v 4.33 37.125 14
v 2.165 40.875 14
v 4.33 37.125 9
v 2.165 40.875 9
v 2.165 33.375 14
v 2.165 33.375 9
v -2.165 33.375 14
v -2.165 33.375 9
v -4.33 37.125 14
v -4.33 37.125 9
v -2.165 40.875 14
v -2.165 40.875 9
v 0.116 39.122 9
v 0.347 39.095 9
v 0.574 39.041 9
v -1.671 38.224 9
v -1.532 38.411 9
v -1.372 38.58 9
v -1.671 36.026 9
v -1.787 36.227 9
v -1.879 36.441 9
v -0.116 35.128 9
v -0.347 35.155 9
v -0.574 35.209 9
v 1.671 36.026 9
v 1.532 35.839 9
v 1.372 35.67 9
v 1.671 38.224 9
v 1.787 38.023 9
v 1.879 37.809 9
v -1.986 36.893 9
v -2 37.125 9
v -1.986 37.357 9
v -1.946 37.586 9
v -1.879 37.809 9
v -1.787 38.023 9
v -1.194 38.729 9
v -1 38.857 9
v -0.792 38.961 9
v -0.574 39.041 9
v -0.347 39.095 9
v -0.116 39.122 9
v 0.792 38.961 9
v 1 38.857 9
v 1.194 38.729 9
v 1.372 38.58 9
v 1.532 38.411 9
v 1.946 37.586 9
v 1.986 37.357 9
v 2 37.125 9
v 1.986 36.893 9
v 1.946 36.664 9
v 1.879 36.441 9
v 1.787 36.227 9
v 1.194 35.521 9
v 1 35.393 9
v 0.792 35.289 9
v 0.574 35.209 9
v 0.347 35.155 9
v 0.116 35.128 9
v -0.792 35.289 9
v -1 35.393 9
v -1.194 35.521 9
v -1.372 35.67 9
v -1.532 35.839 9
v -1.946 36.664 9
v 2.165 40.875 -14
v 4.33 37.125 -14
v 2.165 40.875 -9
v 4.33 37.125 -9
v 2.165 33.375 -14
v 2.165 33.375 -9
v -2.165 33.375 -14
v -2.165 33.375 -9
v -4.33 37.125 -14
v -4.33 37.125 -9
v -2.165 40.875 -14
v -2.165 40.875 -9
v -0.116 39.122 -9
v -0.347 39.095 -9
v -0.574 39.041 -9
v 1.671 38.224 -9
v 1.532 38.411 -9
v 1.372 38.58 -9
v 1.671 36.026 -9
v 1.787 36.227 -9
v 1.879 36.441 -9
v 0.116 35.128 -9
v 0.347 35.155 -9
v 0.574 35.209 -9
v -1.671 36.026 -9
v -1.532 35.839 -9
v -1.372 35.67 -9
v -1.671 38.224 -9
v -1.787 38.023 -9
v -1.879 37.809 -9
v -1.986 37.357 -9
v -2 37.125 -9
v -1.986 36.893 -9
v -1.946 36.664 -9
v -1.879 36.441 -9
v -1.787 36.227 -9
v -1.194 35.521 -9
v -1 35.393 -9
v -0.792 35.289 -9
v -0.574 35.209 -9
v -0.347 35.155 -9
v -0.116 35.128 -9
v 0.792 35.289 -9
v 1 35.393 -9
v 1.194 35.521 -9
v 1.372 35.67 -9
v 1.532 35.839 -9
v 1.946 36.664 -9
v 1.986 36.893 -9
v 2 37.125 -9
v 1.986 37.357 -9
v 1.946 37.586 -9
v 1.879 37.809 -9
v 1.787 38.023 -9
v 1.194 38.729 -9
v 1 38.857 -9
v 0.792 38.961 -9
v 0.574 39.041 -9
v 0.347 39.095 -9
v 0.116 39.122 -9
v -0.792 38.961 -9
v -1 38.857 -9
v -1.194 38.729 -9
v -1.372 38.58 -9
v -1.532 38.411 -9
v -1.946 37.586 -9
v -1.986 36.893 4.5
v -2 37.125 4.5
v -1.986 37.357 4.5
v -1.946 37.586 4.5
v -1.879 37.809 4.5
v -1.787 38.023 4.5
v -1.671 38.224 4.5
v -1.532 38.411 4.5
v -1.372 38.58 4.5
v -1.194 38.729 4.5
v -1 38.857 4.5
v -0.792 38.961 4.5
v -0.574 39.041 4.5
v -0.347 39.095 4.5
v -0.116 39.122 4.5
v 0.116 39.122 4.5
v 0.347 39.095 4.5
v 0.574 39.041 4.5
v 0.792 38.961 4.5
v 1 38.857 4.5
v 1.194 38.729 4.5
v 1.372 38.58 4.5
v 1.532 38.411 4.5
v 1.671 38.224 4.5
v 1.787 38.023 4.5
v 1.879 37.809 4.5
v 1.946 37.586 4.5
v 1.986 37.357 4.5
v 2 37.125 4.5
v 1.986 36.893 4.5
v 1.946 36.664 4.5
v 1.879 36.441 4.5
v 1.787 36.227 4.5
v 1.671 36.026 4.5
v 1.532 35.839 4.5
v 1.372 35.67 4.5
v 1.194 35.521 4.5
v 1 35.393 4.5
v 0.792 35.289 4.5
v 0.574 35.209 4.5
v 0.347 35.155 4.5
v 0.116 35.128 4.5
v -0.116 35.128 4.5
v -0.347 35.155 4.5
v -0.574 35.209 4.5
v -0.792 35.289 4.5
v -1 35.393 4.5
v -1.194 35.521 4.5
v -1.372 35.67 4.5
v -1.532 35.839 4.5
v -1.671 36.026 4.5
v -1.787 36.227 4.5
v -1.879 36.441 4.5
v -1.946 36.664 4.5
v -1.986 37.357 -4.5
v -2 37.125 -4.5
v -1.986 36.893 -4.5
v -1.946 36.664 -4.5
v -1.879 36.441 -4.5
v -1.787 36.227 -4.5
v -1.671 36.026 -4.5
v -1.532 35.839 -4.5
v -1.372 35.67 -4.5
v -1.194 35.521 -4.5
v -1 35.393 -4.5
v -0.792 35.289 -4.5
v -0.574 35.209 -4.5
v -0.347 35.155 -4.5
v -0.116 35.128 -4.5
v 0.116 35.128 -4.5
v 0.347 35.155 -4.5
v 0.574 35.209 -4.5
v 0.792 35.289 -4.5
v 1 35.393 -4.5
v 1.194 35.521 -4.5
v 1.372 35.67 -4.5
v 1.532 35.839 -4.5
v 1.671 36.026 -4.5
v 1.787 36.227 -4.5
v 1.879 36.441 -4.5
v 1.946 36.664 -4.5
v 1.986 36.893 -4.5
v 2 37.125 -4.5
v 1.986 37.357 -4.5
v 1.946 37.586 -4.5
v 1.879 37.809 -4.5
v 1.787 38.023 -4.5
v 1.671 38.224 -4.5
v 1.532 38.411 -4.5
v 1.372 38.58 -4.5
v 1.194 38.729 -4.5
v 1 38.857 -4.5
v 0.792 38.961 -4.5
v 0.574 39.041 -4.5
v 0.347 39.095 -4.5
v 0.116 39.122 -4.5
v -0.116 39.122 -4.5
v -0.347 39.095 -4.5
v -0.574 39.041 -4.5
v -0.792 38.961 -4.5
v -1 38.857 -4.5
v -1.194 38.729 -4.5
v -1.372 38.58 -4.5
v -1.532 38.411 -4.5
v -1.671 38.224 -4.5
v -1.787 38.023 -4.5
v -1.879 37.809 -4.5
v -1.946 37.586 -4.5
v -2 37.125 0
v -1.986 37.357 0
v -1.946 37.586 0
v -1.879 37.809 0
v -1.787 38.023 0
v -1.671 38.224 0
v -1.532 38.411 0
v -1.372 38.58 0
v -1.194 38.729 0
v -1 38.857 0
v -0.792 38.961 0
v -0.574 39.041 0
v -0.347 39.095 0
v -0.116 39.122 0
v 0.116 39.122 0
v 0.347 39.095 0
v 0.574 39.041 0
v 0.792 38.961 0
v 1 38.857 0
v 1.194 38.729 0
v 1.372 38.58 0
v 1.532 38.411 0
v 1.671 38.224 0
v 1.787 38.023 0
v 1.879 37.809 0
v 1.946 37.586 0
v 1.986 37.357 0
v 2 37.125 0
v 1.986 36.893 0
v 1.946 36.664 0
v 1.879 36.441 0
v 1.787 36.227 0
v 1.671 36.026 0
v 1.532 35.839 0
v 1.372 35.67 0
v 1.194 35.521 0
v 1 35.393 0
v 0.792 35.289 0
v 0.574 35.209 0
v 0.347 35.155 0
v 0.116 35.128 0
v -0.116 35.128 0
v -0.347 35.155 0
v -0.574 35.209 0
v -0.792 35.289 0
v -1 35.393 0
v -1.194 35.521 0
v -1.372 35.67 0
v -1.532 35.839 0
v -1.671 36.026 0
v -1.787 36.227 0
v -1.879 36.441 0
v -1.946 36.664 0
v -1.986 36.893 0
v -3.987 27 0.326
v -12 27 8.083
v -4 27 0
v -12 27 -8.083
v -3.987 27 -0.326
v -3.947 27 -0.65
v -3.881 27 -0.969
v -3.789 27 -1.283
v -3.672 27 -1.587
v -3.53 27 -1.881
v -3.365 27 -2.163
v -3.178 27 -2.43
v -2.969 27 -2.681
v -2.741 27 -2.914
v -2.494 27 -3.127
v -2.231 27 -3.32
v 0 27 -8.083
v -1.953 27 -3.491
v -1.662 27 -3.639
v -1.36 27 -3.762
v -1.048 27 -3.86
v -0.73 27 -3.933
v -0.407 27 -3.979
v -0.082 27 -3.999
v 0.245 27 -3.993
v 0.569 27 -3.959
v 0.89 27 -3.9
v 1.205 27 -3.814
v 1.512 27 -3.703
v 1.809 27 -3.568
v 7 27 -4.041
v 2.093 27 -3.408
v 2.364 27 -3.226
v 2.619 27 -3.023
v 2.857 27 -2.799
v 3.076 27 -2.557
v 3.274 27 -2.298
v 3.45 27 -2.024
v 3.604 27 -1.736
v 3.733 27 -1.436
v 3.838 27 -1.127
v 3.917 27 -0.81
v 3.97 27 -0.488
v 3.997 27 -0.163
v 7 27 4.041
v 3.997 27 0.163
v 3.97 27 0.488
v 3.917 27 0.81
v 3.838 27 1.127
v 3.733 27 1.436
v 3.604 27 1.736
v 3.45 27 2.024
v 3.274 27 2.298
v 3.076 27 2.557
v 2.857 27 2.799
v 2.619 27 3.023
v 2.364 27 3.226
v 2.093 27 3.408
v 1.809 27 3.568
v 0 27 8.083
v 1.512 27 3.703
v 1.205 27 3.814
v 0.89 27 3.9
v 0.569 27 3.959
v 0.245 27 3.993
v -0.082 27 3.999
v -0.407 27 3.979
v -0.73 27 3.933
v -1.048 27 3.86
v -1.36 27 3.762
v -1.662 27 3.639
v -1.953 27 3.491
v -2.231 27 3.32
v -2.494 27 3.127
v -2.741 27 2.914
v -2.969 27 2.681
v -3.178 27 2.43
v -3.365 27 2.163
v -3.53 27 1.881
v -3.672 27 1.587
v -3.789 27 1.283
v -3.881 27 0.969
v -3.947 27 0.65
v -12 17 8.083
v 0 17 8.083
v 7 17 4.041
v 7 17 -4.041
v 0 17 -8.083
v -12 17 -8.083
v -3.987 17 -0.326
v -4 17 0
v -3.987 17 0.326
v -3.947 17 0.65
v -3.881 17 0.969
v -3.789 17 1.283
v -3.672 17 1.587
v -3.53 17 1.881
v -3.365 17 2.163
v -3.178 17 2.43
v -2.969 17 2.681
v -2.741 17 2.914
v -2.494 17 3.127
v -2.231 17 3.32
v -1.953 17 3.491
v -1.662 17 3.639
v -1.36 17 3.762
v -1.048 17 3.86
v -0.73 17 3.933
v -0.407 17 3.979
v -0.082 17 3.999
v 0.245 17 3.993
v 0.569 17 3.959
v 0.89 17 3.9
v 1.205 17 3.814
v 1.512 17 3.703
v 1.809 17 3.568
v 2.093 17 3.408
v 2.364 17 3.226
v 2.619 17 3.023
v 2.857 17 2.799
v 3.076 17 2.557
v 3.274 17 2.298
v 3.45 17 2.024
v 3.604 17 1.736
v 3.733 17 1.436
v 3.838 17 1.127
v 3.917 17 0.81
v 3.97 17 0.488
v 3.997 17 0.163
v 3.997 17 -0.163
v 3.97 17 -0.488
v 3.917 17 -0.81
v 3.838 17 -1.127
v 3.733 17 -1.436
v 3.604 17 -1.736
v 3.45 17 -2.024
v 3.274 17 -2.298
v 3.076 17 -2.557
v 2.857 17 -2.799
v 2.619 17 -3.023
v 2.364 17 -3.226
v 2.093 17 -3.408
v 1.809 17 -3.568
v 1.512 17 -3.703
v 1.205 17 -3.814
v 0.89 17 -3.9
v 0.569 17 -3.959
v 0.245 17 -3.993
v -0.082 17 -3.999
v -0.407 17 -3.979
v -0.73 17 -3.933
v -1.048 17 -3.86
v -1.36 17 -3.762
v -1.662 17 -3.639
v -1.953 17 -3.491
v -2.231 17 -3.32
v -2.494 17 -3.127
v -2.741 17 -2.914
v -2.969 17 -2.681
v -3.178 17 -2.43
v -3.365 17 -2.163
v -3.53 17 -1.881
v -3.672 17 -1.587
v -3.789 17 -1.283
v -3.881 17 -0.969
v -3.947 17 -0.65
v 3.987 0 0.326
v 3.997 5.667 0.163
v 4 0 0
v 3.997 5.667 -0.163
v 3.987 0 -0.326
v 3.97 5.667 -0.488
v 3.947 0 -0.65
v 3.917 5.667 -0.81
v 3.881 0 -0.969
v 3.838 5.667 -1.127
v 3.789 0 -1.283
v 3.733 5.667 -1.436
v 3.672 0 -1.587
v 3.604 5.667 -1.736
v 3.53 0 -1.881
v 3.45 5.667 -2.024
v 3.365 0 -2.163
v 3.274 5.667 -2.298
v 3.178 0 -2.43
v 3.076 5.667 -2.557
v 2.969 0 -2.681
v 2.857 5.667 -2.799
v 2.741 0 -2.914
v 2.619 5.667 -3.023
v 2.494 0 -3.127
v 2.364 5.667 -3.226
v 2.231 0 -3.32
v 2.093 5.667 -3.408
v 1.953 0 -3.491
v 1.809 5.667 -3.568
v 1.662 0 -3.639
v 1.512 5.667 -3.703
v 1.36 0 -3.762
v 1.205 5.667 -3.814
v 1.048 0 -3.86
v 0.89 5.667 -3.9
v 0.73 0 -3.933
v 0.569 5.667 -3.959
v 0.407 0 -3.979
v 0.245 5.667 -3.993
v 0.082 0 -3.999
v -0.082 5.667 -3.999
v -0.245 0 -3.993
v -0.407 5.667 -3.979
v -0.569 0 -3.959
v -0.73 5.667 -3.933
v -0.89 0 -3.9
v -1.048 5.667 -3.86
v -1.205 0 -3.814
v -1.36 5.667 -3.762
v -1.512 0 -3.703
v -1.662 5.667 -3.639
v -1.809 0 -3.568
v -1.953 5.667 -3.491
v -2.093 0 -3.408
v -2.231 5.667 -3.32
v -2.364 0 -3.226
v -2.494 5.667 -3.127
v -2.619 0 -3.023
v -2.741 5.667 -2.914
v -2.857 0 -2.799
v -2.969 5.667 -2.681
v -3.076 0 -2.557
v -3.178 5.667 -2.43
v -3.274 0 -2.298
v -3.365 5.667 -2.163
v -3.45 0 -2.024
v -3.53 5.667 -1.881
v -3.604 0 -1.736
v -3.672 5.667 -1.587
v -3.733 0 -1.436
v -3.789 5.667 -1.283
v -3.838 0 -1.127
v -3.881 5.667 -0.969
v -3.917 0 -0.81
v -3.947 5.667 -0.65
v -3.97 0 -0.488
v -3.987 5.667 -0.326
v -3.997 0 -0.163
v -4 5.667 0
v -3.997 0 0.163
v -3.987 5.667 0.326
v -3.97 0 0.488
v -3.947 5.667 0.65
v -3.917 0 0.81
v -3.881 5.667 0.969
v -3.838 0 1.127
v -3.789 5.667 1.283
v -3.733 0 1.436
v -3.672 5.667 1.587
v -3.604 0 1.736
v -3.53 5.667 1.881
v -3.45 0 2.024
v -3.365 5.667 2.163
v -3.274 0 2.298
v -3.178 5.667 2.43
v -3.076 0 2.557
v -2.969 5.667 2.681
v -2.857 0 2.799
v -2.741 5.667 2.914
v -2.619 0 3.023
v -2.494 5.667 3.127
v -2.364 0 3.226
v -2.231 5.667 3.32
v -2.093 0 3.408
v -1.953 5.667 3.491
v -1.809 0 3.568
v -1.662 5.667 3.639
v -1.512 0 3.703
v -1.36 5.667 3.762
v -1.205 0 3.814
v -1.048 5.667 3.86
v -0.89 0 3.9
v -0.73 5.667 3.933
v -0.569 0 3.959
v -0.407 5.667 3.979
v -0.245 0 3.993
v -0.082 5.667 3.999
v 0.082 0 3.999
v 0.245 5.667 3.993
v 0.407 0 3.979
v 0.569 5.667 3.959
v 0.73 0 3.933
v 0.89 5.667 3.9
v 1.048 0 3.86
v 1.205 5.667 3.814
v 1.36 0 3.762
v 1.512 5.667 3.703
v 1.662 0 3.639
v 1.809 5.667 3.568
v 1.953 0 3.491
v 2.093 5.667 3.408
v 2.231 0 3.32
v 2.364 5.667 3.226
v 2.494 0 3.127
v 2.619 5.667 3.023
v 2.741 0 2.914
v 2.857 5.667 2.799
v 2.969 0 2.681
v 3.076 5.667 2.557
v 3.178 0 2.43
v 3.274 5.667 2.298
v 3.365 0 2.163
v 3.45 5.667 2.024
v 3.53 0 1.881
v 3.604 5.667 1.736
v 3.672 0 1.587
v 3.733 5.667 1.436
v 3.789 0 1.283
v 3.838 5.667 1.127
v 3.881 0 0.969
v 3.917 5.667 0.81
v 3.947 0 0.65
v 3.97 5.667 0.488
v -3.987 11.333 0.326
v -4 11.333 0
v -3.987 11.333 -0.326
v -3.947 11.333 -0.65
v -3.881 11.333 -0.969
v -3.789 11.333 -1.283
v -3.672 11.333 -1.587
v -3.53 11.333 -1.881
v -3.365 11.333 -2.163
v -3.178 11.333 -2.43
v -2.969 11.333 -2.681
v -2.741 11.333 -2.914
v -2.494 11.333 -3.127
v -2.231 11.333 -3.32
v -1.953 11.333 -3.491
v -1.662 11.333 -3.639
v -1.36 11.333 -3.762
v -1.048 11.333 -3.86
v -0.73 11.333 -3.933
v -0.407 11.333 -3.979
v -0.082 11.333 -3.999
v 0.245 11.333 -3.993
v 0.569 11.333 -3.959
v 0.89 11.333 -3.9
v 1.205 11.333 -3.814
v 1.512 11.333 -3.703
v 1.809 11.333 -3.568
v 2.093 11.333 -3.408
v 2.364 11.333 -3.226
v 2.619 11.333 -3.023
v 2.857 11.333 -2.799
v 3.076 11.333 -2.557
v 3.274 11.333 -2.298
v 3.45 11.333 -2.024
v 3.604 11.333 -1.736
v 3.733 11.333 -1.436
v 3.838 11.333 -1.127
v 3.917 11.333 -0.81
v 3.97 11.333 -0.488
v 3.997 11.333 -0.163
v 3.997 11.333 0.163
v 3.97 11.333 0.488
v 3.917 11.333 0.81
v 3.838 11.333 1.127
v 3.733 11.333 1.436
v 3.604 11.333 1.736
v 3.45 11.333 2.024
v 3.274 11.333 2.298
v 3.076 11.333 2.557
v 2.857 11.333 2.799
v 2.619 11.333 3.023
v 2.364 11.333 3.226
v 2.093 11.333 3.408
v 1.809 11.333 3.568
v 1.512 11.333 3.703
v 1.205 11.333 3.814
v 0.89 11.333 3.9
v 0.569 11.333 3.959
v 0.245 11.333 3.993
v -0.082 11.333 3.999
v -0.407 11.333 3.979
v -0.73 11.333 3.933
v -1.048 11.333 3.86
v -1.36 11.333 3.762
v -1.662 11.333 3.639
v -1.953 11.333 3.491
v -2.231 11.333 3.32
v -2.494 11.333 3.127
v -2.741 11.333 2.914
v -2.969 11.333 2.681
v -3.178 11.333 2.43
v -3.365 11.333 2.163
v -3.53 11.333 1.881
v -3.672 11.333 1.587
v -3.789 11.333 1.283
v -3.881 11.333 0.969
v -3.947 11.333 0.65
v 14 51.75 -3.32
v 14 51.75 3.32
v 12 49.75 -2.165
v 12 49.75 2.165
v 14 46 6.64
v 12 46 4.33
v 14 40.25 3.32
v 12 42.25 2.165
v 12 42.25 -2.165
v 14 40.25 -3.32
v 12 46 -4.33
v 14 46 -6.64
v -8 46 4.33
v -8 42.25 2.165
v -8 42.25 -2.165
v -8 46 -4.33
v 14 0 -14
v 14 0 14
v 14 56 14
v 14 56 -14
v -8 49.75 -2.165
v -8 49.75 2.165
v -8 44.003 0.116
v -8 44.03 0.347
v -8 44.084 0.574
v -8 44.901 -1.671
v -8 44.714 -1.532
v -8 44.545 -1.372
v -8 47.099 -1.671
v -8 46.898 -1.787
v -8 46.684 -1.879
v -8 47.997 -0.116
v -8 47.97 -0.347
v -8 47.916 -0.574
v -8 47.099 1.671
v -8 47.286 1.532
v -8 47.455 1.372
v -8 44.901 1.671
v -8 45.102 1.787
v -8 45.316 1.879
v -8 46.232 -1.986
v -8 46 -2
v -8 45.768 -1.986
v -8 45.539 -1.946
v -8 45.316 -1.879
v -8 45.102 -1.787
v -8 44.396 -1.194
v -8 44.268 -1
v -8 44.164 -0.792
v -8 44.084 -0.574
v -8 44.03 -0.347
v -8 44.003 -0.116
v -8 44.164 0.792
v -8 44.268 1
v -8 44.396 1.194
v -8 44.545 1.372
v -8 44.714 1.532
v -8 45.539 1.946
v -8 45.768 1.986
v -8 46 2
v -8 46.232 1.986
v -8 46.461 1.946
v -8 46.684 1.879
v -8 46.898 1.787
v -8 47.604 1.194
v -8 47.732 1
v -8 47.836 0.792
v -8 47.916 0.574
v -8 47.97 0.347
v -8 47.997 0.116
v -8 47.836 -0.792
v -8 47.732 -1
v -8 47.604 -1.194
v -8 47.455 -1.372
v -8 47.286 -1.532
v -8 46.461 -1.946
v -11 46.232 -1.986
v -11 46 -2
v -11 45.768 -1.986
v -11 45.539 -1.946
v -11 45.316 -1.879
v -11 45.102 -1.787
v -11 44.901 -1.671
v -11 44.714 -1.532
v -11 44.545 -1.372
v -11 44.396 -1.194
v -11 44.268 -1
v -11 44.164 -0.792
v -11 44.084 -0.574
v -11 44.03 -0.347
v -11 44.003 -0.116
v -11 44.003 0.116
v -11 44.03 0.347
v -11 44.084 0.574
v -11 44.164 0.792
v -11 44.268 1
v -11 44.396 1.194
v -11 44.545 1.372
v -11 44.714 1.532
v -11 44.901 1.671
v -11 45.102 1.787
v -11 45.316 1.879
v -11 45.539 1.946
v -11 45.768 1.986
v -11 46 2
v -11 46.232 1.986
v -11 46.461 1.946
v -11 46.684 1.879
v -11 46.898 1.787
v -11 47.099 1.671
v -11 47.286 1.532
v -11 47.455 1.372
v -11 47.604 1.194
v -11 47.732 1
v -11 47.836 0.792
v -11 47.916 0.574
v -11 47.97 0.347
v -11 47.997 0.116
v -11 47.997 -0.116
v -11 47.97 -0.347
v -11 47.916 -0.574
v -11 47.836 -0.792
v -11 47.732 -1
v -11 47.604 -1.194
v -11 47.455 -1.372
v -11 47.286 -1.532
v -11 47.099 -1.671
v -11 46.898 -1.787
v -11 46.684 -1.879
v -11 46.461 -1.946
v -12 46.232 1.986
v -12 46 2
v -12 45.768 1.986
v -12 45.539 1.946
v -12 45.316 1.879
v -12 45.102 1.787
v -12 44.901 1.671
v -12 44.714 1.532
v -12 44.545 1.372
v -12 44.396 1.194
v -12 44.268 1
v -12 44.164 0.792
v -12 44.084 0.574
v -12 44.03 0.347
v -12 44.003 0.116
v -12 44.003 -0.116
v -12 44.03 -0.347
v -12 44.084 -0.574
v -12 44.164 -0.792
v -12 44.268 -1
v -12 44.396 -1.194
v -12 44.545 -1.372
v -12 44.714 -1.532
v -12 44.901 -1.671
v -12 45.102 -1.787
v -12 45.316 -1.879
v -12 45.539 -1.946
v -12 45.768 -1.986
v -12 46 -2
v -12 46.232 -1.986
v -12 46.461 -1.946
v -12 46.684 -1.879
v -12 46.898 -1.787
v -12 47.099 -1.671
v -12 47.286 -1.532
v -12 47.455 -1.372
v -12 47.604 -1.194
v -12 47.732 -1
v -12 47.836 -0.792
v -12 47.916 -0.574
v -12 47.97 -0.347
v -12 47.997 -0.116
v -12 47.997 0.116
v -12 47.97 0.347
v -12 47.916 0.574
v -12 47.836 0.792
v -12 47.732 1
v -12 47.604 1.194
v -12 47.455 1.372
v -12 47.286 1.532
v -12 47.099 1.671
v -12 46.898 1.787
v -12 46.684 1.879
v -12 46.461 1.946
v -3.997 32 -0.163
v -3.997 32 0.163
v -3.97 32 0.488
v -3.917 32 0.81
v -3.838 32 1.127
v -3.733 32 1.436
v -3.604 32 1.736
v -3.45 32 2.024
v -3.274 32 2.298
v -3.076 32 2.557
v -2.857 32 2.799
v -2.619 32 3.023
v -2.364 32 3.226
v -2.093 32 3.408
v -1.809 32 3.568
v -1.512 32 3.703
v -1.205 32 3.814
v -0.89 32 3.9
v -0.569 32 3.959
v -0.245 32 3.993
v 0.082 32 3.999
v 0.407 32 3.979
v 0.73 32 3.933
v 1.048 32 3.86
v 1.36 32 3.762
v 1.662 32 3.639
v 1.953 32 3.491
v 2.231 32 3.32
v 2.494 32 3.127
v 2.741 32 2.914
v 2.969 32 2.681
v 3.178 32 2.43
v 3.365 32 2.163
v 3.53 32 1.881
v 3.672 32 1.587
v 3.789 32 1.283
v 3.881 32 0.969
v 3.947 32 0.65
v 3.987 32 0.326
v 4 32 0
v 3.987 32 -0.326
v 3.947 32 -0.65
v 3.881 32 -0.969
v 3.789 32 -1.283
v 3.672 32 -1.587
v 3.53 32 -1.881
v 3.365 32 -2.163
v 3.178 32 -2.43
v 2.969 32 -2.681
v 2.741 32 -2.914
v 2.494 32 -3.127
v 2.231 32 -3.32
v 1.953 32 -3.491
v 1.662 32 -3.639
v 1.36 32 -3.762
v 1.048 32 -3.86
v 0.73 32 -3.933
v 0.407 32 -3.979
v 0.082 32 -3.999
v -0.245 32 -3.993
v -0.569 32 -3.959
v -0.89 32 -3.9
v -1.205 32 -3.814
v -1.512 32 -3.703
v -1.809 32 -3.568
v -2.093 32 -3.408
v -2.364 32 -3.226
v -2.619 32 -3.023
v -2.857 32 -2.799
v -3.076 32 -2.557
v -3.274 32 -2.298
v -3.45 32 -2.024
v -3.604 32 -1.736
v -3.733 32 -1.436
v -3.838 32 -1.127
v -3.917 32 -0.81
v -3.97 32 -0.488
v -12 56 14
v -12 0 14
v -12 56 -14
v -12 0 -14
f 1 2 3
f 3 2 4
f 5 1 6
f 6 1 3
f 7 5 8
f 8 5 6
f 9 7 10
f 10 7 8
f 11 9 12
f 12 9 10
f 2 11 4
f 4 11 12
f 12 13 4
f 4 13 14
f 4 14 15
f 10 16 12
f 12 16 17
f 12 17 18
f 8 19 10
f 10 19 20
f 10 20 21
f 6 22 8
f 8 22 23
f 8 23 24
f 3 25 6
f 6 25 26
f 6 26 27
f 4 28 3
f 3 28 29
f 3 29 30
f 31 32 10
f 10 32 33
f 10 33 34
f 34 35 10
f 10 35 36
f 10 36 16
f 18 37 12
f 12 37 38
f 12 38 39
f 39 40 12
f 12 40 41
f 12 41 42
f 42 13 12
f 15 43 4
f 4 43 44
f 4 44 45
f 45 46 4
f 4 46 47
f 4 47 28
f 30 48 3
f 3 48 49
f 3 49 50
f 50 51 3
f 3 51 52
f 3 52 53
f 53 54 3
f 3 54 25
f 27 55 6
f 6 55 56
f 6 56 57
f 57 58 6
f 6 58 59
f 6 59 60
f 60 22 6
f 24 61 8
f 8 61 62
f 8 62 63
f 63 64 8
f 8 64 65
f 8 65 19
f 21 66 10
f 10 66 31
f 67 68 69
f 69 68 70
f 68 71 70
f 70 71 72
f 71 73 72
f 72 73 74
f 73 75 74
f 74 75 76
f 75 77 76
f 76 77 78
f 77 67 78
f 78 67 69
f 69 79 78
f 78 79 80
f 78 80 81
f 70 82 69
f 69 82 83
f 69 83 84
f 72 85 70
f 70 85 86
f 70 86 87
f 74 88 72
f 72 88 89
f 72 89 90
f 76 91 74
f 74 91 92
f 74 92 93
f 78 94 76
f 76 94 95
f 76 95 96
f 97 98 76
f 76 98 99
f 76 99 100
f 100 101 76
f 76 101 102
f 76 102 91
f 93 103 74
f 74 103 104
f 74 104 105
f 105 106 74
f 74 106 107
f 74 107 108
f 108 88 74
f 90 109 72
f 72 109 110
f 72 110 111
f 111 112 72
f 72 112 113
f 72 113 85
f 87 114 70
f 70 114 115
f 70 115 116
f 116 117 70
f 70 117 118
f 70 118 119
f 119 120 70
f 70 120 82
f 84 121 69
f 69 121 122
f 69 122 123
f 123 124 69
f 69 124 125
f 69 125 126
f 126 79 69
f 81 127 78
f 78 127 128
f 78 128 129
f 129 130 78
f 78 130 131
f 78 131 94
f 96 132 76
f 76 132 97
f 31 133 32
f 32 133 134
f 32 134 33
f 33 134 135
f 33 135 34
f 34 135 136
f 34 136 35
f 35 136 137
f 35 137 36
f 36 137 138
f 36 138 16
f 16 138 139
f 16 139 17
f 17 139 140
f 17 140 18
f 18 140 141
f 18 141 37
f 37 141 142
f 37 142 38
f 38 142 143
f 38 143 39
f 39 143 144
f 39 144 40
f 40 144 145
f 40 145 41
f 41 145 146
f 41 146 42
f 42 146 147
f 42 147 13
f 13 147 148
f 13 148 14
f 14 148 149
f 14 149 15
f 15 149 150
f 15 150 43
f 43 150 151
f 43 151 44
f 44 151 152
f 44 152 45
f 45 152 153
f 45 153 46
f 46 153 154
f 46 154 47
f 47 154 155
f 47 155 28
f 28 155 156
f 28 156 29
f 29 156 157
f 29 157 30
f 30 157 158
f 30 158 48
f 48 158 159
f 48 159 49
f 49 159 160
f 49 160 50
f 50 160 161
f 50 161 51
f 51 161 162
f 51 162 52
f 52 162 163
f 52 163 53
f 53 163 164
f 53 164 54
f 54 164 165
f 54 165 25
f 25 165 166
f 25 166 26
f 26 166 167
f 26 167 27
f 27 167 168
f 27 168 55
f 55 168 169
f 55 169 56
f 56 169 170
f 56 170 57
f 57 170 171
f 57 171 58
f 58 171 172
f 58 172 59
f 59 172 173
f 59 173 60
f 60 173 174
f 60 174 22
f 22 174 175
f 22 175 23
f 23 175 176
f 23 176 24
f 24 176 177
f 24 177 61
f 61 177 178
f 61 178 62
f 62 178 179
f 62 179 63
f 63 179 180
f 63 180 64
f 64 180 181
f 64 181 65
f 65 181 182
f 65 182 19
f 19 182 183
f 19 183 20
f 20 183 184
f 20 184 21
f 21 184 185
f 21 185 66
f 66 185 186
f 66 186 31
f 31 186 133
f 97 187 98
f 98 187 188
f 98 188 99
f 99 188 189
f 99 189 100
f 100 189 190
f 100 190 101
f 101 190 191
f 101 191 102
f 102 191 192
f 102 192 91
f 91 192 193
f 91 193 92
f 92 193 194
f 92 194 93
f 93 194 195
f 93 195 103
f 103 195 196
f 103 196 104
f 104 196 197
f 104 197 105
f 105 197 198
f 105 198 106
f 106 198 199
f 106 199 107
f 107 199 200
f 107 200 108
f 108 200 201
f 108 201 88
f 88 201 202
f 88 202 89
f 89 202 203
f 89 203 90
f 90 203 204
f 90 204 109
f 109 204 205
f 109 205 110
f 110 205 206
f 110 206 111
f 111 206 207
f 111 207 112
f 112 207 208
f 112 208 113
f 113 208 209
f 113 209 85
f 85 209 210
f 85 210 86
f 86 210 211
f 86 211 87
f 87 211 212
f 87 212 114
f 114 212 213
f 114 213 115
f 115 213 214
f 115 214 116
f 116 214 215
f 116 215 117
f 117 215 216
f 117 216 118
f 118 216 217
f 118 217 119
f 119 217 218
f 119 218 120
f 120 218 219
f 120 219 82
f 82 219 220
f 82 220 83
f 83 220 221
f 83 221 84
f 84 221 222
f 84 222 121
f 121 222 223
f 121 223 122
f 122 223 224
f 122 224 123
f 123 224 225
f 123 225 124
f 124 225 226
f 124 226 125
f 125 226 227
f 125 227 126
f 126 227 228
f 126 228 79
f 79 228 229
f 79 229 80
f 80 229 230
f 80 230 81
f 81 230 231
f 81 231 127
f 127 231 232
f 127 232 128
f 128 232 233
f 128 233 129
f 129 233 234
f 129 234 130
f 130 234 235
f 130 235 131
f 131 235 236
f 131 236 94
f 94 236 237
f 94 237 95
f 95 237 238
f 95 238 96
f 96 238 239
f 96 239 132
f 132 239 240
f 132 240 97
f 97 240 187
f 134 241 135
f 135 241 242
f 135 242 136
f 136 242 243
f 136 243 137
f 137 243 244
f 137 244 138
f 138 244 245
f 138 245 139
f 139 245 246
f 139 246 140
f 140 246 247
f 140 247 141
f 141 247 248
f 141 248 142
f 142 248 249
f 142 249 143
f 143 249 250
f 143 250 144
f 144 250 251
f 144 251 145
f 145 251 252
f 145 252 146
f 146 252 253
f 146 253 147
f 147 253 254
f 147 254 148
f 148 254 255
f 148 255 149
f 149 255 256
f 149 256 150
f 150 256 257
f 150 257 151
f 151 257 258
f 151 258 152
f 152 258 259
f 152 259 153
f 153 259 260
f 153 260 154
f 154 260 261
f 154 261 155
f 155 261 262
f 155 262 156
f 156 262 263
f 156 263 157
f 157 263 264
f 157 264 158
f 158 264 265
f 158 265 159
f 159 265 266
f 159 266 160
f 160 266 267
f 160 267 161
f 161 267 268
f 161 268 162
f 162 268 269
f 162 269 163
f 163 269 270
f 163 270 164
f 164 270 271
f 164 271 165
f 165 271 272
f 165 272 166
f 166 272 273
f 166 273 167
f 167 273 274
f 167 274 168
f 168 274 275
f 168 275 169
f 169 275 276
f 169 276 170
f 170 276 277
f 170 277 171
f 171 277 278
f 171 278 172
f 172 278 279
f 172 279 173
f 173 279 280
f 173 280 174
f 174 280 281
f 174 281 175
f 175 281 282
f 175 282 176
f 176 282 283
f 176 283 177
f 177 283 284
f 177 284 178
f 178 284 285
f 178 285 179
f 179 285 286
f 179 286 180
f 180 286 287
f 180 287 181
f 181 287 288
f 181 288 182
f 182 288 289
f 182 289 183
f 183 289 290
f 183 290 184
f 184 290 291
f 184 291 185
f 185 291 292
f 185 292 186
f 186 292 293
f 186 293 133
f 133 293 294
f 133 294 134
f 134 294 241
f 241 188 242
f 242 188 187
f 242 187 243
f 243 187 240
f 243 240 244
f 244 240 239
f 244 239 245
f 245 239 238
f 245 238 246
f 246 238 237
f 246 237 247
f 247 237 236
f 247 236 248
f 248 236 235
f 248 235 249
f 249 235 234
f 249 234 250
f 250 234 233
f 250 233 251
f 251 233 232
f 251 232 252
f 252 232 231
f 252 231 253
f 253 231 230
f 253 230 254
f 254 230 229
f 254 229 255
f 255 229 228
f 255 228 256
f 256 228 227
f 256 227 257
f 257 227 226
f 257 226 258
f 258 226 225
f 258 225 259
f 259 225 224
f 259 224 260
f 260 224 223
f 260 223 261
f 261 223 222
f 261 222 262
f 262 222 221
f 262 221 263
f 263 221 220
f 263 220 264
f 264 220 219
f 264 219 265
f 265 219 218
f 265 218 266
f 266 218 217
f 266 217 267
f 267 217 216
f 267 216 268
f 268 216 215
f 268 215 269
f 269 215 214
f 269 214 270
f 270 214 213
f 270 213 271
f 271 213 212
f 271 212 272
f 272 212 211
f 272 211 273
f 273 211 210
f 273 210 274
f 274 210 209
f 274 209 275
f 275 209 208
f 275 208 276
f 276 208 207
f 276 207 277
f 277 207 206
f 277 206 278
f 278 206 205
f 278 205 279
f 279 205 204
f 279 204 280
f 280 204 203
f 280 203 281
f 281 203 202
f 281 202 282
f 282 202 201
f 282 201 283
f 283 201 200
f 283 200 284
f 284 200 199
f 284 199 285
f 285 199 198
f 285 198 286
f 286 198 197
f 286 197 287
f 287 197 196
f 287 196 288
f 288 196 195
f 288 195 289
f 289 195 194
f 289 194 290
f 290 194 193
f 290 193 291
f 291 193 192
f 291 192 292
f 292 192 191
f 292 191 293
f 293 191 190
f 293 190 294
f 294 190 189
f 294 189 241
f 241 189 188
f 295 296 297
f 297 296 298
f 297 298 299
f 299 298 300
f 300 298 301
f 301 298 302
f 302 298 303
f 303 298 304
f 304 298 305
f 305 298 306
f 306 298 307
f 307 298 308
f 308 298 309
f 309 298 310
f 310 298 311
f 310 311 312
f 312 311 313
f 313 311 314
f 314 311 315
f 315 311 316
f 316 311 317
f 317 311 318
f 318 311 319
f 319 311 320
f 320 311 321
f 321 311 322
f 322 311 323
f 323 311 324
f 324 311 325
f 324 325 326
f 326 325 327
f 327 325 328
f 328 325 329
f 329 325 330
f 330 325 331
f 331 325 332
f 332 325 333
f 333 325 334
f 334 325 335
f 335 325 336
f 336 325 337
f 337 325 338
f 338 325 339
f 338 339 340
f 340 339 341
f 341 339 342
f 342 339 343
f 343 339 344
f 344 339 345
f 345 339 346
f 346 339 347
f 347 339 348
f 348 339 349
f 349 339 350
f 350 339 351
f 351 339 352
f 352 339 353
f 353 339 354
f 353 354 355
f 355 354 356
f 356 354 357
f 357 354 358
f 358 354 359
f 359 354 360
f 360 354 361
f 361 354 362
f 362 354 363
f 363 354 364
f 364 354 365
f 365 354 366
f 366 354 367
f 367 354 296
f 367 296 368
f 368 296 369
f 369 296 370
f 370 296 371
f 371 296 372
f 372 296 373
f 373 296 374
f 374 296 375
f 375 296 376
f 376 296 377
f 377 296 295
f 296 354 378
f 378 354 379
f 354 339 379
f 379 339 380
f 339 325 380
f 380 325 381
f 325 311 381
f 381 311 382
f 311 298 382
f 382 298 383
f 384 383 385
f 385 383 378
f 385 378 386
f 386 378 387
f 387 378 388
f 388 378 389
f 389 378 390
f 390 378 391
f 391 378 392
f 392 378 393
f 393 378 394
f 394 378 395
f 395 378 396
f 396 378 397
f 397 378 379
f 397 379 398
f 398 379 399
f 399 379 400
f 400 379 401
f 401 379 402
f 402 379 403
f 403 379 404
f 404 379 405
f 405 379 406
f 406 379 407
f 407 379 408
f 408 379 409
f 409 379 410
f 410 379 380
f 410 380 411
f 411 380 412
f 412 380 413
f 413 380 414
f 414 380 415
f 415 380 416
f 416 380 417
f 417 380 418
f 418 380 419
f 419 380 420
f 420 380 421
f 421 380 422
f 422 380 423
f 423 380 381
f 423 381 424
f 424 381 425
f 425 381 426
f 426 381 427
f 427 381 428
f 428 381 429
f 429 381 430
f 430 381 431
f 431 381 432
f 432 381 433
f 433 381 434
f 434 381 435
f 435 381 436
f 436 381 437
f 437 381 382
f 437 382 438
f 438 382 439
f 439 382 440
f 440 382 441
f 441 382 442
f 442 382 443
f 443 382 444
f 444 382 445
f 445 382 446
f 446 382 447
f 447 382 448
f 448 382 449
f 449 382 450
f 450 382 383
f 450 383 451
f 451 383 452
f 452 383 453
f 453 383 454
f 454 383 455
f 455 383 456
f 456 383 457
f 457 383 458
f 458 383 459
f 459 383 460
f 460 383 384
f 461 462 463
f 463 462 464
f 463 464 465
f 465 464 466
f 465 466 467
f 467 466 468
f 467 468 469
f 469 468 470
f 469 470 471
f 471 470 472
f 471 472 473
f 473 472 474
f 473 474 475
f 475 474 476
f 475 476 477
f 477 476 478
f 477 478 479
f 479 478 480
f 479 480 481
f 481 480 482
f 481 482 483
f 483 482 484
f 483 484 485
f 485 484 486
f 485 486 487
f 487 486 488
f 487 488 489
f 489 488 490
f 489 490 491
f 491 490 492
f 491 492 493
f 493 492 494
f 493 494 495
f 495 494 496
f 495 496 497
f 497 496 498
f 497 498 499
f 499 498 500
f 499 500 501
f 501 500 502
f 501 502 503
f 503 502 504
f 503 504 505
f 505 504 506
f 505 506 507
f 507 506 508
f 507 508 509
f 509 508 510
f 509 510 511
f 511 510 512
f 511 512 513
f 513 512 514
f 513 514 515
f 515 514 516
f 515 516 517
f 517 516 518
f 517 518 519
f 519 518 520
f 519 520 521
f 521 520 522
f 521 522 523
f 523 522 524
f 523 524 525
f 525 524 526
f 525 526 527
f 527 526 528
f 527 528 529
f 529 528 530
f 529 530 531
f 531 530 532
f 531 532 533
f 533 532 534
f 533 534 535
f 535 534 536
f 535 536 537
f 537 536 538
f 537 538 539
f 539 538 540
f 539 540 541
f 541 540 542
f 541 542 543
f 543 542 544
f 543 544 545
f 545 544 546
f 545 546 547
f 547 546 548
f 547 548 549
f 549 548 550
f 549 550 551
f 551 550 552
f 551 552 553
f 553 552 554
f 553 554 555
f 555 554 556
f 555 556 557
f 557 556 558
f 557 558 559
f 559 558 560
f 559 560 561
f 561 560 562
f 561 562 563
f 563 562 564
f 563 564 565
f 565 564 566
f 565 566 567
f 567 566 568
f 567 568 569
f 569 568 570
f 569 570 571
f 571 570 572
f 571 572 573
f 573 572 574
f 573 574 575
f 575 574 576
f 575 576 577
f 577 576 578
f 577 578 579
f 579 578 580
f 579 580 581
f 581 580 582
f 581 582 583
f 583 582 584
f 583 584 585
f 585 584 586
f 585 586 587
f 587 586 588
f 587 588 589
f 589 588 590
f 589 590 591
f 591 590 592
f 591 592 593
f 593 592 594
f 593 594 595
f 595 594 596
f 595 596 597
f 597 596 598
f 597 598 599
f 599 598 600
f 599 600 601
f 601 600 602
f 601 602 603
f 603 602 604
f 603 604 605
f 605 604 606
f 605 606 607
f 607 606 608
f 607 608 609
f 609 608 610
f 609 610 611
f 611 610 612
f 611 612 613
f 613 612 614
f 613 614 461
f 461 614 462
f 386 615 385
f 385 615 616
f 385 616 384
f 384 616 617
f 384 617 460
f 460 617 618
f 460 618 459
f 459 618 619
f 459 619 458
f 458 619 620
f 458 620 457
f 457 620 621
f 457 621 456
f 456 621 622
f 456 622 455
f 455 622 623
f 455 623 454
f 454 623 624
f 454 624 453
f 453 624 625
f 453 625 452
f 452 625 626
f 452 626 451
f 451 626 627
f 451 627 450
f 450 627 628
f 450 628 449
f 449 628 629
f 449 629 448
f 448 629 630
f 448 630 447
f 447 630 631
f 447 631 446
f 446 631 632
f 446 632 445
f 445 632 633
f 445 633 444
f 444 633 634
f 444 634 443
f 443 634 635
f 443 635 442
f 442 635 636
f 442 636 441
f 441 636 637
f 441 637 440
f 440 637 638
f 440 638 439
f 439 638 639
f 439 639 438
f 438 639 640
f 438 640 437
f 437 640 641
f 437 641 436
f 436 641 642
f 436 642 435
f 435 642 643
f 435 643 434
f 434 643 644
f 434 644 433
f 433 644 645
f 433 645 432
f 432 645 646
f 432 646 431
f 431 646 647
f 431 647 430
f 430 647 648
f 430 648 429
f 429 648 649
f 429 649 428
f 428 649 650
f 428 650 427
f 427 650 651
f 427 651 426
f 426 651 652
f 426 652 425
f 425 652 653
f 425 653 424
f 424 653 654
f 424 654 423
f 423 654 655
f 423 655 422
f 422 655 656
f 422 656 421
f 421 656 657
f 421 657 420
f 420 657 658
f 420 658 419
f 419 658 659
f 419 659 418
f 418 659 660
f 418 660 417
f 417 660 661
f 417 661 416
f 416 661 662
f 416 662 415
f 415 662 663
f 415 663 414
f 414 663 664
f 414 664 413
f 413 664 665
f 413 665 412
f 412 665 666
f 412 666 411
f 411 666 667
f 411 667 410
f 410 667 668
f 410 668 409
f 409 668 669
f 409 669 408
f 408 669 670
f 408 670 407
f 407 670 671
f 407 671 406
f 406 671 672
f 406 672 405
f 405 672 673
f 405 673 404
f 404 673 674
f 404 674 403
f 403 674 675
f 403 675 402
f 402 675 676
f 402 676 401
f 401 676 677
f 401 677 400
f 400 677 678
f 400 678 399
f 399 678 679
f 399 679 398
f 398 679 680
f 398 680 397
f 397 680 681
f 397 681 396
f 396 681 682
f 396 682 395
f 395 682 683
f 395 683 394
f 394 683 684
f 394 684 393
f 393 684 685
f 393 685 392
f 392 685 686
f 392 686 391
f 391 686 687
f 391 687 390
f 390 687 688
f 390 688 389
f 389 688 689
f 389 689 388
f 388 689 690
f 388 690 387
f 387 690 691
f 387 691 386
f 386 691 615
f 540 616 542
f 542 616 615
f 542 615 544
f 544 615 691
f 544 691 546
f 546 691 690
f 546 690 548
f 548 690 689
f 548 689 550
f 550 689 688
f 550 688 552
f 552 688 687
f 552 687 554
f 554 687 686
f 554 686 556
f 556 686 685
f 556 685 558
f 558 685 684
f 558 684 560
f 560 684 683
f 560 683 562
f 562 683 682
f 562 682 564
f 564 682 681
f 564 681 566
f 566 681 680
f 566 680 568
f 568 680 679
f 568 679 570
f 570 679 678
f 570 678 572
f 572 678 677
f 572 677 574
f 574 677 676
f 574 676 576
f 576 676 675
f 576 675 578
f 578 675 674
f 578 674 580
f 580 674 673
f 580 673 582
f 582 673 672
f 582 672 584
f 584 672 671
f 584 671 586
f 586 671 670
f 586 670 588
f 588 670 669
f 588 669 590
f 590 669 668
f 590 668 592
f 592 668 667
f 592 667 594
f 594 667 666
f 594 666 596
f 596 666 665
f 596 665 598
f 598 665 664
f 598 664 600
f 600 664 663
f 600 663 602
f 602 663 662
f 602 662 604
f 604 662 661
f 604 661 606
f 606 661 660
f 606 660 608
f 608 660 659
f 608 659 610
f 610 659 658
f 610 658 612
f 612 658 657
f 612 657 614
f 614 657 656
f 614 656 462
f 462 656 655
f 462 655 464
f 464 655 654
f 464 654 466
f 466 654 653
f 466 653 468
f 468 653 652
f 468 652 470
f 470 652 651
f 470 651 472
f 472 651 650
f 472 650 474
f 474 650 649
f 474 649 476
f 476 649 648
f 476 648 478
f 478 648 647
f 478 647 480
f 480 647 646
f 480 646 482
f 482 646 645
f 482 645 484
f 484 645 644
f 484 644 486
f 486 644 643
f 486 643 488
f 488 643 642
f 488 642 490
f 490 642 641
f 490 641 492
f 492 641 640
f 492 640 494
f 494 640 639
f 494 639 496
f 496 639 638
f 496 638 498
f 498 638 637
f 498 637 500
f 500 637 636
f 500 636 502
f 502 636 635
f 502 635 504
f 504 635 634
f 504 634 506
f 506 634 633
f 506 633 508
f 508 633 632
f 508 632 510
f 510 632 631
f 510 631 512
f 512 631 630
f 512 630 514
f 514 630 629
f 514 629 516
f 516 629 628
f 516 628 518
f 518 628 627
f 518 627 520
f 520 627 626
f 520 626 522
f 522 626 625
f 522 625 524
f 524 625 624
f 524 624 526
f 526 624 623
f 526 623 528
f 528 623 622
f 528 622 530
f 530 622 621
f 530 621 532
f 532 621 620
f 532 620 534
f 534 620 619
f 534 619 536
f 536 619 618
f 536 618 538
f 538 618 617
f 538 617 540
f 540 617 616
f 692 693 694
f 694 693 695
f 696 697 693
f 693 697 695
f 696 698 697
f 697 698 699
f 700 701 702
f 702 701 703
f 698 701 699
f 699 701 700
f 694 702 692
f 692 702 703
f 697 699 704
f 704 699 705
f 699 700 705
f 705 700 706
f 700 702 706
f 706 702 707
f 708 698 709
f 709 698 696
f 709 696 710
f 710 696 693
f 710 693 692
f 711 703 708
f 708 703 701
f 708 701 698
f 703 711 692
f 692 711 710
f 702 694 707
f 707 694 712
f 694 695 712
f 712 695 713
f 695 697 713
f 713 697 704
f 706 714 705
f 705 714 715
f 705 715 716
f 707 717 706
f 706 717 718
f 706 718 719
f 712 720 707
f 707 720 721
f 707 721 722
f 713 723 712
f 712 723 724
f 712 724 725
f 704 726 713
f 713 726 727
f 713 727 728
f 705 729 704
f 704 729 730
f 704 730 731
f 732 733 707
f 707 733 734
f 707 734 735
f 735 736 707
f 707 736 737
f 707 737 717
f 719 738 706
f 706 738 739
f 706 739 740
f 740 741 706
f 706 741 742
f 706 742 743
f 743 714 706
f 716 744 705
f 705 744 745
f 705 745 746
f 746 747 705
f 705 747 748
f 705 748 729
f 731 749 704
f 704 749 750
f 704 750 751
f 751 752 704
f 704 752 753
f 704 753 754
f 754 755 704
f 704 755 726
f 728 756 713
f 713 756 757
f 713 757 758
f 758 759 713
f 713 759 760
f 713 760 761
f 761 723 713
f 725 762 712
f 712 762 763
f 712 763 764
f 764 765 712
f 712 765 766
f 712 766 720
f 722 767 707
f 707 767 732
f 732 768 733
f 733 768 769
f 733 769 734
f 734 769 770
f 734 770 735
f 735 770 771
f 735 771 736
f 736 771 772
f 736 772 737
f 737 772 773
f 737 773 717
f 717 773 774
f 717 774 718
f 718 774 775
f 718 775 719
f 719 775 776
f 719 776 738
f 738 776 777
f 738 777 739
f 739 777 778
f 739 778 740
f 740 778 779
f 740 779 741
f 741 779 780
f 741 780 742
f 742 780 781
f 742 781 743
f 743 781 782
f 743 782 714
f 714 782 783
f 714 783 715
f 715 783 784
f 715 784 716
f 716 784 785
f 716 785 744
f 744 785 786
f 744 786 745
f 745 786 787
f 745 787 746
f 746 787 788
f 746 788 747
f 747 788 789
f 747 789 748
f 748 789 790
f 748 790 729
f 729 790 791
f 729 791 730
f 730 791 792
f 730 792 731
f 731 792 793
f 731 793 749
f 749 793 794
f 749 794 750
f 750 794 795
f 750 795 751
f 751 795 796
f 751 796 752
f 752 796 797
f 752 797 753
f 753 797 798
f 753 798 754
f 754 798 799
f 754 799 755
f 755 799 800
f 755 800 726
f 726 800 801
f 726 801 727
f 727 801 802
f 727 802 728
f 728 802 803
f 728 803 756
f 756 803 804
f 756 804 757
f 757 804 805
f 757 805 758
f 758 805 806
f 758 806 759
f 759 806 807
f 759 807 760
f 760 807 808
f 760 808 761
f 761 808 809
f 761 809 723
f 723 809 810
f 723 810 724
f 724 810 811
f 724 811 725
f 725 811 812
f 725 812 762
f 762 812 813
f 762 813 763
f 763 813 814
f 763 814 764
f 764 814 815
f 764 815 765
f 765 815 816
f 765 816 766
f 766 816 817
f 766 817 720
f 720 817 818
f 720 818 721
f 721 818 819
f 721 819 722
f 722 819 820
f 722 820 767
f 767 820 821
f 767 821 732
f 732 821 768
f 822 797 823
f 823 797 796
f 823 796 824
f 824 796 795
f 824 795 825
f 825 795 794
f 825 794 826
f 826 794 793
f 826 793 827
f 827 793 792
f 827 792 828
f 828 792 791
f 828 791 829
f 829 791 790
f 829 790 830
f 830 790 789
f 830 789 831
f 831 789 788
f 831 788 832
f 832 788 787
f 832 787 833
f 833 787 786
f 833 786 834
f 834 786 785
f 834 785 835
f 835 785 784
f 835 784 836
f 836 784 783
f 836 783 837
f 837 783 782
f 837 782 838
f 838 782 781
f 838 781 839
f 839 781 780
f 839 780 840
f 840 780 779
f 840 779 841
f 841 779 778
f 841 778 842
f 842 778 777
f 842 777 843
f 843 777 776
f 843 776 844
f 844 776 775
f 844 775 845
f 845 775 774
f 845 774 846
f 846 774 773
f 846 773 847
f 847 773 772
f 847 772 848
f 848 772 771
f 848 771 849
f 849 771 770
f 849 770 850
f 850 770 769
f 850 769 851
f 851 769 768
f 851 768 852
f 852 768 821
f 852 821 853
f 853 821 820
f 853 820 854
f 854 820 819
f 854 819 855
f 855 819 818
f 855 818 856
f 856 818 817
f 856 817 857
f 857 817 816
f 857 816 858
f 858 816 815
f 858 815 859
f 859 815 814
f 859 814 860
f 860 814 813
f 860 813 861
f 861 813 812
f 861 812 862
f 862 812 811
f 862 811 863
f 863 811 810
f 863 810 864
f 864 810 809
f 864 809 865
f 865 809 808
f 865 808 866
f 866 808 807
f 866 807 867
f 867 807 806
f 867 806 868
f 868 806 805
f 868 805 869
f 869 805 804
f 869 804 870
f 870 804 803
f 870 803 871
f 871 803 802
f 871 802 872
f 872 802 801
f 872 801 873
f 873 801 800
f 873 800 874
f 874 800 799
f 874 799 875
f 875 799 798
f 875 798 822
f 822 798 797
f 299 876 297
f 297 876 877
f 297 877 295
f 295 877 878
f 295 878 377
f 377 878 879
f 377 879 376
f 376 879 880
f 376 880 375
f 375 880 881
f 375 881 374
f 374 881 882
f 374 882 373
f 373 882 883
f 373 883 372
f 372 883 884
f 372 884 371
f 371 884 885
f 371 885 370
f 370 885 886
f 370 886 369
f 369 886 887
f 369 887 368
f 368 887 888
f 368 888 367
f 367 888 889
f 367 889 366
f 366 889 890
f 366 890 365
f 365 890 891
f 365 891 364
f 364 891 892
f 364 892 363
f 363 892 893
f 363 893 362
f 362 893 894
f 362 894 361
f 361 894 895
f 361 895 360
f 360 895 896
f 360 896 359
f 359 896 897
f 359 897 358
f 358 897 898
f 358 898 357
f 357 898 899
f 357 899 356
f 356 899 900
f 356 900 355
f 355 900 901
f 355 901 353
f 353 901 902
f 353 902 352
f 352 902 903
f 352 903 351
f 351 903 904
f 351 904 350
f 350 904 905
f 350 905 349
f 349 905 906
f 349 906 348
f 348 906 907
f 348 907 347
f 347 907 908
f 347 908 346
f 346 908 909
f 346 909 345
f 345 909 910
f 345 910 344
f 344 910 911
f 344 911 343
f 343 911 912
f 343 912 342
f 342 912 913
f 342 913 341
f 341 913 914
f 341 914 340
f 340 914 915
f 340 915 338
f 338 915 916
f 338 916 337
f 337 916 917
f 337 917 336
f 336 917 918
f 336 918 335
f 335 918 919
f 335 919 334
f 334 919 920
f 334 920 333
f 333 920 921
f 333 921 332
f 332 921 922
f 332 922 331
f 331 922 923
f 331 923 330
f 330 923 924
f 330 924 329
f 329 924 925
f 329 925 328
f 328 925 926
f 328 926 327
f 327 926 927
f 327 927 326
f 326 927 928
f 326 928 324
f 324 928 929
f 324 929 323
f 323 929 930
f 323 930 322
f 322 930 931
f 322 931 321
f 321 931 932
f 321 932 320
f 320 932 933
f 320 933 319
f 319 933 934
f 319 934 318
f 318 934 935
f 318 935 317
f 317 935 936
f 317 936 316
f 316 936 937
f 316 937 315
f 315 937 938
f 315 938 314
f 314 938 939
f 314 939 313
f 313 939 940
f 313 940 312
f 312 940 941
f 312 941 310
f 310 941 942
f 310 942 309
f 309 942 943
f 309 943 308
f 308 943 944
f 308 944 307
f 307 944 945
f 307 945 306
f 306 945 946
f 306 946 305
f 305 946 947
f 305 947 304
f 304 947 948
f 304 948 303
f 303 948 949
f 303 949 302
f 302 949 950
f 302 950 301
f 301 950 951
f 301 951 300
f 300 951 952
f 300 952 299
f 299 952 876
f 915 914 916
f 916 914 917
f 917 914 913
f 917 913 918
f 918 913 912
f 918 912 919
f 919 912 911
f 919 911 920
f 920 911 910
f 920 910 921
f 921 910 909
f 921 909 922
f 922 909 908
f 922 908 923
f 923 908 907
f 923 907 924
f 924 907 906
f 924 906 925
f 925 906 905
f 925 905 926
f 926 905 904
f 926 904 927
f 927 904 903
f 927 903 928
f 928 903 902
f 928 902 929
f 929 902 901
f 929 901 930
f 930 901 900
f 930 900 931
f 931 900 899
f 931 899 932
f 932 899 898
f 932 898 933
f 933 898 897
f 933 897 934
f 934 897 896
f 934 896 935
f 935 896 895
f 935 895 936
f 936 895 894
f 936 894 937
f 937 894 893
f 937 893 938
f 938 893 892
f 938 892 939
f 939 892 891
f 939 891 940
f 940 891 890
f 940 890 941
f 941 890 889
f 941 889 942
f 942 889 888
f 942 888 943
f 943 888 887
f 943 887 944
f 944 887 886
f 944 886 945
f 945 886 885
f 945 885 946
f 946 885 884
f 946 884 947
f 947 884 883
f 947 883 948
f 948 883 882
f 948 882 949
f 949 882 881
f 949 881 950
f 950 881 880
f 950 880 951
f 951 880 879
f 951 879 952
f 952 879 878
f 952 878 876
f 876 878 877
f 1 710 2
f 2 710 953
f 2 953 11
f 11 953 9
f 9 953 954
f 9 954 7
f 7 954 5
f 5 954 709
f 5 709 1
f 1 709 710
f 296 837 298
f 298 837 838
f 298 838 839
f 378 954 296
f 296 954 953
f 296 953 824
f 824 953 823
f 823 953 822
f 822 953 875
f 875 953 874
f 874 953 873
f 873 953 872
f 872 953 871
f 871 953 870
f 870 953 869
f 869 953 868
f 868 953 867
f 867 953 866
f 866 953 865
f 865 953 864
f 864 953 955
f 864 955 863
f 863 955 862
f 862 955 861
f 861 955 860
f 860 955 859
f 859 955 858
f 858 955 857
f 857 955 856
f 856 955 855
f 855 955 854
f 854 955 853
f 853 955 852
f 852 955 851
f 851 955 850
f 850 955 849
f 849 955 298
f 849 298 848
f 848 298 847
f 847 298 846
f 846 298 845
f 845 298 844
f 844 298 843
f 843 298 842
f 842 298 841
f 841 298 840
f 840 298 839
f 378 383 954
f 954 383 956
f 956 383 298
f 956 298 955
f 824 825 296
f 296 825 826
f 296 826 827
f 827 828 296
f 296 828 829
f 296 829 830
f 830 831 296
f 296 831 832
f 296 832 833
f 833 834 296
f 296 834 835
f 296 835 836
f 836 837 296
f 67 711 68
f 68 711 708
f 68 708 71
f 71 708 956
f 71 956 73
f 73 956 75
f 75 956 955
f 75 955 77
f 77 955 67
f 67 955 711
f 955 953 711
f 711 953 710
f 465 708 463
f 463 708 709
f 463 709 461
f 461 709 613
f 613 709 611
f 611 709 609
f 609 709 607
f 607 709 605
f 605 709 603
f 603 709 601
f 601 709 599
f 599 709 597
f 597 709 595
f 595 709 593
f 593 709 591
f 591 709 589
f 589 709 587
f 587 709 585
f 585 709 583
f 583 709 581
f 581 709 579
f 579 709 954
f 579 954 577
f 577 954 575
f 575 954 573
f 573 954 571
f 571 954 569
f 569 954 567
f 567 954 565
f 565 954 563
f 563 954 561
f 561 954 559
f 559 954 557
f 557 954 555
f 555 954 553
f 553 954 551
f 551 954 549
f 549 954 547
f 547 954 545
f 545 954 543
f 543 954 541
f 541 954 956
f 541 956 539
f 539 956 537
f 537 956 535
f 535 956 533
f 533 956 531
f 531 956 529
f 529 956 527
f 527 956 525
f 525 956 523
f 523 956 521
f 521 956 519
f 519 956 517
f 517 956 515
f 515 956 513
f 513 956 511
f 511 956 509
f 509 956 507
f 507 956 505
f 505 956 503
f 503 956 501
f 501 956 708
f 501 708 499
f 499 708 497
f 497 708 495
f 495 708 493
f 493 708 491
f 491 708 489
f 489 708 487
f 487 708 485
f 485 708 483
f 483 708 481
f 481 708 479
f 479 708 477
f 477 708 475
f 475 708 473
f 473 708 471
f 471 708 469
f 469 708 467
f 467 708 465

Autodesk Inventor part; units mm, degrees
ref_plane "YZ Plane" through (0, 0, 0) normal (1, 0, 0) x (0, 1, 0)
ref_plane "XZ Plane" through (0, 0, 0) normal (0, 1, 0) x (-1, 0, 0)
ref_plane "XY Plane" through (0, 0, 0) normal (0, 0, 1) x (1, 0, 0)
sketch "Эскиз1" plane through (0, 0, 0) normal (0, 1, 0) x (-1, 0, 0)
  line L0 (-14, 14) -> (14, 14)
  line L1 (14, 14) -> (14, -14)
  line L2 (14, -14) -> (-14, -14)
  line L3 (-14, -14) -> (-14, 14)
  line L4 (-14, 14) -> (14, -14) construction
  line L5 (14, 14) -> (-14, -14) construction
  point P0 (0, 0)
  dimension "d0" = 28
  dimension "d1" = 28
extrude "Выдавливание1" add sketch "Эскиз1" along normal blind 56
sketch "Эскиз2" plane through (0, 0, 0) normal (0, -1, 0) x (1, 0, 0)
  circle A0 centre (0, 0) radius 4
extrude "Выдавливание2" cut sketch "Эскиз2" against normal blind 32
sketch "Эскиз3" plane through (-14, 0, -14) normal (-1, 0, 0) x (0, 0, 1)
  circle A0 centre (14, 46) radius 2
  point P0 (14, 0)
  dimension "d24" = 4
extrude "Выдавливание3" cut sketch "Эскиз3" against normal through all
sketch "Эскиз4" plane through (14, 0, 14) normal (1, 0, 0) x (0, 0, -1)
  circle A0 centre (14, 46) radius 2 projected
  line L0 (9.6699, 46) -> (11.8349, 49.75)
  line L1 (11.8349, 49.75) -> (16.1651, 49.75)
  line L2 (16.1651, 49.75) -> (18.3301, 46)
  line L3 (18.3301, 46) -> (16.1651, 42.25)
  line L4 (16.1651, 42.25) -> (11.8349, 42.25)
  line L5 (11.8349, 42.25) -> (9.6699, 46)
  line L6 (0, 56) -> (28, 56) projected
  point P0 (14, 0)
  dimension "d8" = 7.5
extrude "Выдавливание4" cut sketch "Эскиз4" against normal blind 22
chamfer "Фаска1" distance 2 angle 45 6 edges at (14, 42.25, 0) (14, 44.125, -3.2476) (14, 47.875, -3.2476) (14, 49.75, 0) (14, 47.875, 3.2476) (14, 44.125, 3.2476)
ref_plane "РабПлоскость1" through (0, 22, 0) normal (0, -1, 0) x (1, 0, 0)
sketch "Эскиз5" plane through (0, 22, 0) normal (0, -1, 0) x (1, 0, 0)
  line L0 (0, 8.0829) -> (7, 4.0415)
  line L1 (7, 4.0415) -> (7, -4.0415)
  line L2 (7, -4.0415) -> (0, -8.0829)
  line L3 (0, -8.0829) -> (-7, -4.0415)
  line L4 (-7, -4.0415) -> (-7, 4.0415)
  line L5 (-7, 4.0415) -> (0, 8.0829)
  line L6 (0, 8.0829) -> (-14, 8.0829)
  line L7 (-14, -14) -> (-14, 14) projected
  line L8 (0, -8.0829) -> (-14, -8.0829)
  line L9 (-14, 8.0829) -> (-14, -8.0829)
  point P0 (0, 0)
  point P1 (0, 0)
  dimension "d15" = 14
extrude "Выдавливание5" cut sketch "Эскиз5" along normal mid plane 10
move faces "Перенос1" translate (2, 0, 0) faces at (-14, 5.6667, -2.6943)
sketch "Эскиз7" plane through (14, 0, 14) normal (0, 0, 1) x (1, 0, 0)
  line L0 (-10, 32) -> (-18, 32) projected
  line L1 (-2, 42.25) -> (-22, 42.25) projected
  circle A0 centre (-14, 37.125) radius 2
  line L2 (-14, 32) -> (-14, 42.25) construction
  point P0 (-14, 0)
  dimension "d28" = 4
extrude "Выдавливание7" cut sketch "Эскиз7" against normal blind 36.5
sketch "Эскиз8" plane through (14, 0, -14) normal (0, 0, -1) x (-1, 0, 0)
  circle A0 centre (14, 37.125) radius 2 projected
  line L0 (18.3301, 37.125) -> (16.1651, 33.375)
  line L1 (16.1651, 33.375) -> (11.8349, 33.375)
  line L2 (11.8349, 33.375) -> (9.6699, 37.125)
  line L3 (9.6699, 37.125) -> (11.8349, 40.875)
  line L4 (11.8349, 40.875) -> (16.1651, 40.875)
  line L5 (16.1651, 40.875) -> (18.3301, 37.125)
  point P0 (14, 0)
  dimension "d31" = 7.5
extrude "Выдавливание8" cut sketch "Эскиз8" against normal blind 5
mirror "Зеркальное отражение1" about plane through (0, 0, 0) normal (0, 0, 1) of "Выдавливание8"
sketch "Эскиз10" plane through (14, 0, 14) normal (0, 0, 1) x (1, 0, 0)
  line L0 (0, 0) -> (0, 56) projected
  line L1 (-26, 0) -> (-26, 56) projected
  line L2 (0, 56) -> (-26, 56)
  line L3 (-26, 56) -> (-26, 32)
  line L4 (-26, 32) -> (0, 32)
  line L5 (0, 32) -> (0, 56)
  line L6 (-26, 0) -> (0, 0) projected
  point P0 (-14, 0)
  dimension "d35" = 32
equation "\"d1\" = d0"
equation "\"d2\" = 2 * d0"
properties part number "000.001.001 - Уголок" material "Пластик АБС"
